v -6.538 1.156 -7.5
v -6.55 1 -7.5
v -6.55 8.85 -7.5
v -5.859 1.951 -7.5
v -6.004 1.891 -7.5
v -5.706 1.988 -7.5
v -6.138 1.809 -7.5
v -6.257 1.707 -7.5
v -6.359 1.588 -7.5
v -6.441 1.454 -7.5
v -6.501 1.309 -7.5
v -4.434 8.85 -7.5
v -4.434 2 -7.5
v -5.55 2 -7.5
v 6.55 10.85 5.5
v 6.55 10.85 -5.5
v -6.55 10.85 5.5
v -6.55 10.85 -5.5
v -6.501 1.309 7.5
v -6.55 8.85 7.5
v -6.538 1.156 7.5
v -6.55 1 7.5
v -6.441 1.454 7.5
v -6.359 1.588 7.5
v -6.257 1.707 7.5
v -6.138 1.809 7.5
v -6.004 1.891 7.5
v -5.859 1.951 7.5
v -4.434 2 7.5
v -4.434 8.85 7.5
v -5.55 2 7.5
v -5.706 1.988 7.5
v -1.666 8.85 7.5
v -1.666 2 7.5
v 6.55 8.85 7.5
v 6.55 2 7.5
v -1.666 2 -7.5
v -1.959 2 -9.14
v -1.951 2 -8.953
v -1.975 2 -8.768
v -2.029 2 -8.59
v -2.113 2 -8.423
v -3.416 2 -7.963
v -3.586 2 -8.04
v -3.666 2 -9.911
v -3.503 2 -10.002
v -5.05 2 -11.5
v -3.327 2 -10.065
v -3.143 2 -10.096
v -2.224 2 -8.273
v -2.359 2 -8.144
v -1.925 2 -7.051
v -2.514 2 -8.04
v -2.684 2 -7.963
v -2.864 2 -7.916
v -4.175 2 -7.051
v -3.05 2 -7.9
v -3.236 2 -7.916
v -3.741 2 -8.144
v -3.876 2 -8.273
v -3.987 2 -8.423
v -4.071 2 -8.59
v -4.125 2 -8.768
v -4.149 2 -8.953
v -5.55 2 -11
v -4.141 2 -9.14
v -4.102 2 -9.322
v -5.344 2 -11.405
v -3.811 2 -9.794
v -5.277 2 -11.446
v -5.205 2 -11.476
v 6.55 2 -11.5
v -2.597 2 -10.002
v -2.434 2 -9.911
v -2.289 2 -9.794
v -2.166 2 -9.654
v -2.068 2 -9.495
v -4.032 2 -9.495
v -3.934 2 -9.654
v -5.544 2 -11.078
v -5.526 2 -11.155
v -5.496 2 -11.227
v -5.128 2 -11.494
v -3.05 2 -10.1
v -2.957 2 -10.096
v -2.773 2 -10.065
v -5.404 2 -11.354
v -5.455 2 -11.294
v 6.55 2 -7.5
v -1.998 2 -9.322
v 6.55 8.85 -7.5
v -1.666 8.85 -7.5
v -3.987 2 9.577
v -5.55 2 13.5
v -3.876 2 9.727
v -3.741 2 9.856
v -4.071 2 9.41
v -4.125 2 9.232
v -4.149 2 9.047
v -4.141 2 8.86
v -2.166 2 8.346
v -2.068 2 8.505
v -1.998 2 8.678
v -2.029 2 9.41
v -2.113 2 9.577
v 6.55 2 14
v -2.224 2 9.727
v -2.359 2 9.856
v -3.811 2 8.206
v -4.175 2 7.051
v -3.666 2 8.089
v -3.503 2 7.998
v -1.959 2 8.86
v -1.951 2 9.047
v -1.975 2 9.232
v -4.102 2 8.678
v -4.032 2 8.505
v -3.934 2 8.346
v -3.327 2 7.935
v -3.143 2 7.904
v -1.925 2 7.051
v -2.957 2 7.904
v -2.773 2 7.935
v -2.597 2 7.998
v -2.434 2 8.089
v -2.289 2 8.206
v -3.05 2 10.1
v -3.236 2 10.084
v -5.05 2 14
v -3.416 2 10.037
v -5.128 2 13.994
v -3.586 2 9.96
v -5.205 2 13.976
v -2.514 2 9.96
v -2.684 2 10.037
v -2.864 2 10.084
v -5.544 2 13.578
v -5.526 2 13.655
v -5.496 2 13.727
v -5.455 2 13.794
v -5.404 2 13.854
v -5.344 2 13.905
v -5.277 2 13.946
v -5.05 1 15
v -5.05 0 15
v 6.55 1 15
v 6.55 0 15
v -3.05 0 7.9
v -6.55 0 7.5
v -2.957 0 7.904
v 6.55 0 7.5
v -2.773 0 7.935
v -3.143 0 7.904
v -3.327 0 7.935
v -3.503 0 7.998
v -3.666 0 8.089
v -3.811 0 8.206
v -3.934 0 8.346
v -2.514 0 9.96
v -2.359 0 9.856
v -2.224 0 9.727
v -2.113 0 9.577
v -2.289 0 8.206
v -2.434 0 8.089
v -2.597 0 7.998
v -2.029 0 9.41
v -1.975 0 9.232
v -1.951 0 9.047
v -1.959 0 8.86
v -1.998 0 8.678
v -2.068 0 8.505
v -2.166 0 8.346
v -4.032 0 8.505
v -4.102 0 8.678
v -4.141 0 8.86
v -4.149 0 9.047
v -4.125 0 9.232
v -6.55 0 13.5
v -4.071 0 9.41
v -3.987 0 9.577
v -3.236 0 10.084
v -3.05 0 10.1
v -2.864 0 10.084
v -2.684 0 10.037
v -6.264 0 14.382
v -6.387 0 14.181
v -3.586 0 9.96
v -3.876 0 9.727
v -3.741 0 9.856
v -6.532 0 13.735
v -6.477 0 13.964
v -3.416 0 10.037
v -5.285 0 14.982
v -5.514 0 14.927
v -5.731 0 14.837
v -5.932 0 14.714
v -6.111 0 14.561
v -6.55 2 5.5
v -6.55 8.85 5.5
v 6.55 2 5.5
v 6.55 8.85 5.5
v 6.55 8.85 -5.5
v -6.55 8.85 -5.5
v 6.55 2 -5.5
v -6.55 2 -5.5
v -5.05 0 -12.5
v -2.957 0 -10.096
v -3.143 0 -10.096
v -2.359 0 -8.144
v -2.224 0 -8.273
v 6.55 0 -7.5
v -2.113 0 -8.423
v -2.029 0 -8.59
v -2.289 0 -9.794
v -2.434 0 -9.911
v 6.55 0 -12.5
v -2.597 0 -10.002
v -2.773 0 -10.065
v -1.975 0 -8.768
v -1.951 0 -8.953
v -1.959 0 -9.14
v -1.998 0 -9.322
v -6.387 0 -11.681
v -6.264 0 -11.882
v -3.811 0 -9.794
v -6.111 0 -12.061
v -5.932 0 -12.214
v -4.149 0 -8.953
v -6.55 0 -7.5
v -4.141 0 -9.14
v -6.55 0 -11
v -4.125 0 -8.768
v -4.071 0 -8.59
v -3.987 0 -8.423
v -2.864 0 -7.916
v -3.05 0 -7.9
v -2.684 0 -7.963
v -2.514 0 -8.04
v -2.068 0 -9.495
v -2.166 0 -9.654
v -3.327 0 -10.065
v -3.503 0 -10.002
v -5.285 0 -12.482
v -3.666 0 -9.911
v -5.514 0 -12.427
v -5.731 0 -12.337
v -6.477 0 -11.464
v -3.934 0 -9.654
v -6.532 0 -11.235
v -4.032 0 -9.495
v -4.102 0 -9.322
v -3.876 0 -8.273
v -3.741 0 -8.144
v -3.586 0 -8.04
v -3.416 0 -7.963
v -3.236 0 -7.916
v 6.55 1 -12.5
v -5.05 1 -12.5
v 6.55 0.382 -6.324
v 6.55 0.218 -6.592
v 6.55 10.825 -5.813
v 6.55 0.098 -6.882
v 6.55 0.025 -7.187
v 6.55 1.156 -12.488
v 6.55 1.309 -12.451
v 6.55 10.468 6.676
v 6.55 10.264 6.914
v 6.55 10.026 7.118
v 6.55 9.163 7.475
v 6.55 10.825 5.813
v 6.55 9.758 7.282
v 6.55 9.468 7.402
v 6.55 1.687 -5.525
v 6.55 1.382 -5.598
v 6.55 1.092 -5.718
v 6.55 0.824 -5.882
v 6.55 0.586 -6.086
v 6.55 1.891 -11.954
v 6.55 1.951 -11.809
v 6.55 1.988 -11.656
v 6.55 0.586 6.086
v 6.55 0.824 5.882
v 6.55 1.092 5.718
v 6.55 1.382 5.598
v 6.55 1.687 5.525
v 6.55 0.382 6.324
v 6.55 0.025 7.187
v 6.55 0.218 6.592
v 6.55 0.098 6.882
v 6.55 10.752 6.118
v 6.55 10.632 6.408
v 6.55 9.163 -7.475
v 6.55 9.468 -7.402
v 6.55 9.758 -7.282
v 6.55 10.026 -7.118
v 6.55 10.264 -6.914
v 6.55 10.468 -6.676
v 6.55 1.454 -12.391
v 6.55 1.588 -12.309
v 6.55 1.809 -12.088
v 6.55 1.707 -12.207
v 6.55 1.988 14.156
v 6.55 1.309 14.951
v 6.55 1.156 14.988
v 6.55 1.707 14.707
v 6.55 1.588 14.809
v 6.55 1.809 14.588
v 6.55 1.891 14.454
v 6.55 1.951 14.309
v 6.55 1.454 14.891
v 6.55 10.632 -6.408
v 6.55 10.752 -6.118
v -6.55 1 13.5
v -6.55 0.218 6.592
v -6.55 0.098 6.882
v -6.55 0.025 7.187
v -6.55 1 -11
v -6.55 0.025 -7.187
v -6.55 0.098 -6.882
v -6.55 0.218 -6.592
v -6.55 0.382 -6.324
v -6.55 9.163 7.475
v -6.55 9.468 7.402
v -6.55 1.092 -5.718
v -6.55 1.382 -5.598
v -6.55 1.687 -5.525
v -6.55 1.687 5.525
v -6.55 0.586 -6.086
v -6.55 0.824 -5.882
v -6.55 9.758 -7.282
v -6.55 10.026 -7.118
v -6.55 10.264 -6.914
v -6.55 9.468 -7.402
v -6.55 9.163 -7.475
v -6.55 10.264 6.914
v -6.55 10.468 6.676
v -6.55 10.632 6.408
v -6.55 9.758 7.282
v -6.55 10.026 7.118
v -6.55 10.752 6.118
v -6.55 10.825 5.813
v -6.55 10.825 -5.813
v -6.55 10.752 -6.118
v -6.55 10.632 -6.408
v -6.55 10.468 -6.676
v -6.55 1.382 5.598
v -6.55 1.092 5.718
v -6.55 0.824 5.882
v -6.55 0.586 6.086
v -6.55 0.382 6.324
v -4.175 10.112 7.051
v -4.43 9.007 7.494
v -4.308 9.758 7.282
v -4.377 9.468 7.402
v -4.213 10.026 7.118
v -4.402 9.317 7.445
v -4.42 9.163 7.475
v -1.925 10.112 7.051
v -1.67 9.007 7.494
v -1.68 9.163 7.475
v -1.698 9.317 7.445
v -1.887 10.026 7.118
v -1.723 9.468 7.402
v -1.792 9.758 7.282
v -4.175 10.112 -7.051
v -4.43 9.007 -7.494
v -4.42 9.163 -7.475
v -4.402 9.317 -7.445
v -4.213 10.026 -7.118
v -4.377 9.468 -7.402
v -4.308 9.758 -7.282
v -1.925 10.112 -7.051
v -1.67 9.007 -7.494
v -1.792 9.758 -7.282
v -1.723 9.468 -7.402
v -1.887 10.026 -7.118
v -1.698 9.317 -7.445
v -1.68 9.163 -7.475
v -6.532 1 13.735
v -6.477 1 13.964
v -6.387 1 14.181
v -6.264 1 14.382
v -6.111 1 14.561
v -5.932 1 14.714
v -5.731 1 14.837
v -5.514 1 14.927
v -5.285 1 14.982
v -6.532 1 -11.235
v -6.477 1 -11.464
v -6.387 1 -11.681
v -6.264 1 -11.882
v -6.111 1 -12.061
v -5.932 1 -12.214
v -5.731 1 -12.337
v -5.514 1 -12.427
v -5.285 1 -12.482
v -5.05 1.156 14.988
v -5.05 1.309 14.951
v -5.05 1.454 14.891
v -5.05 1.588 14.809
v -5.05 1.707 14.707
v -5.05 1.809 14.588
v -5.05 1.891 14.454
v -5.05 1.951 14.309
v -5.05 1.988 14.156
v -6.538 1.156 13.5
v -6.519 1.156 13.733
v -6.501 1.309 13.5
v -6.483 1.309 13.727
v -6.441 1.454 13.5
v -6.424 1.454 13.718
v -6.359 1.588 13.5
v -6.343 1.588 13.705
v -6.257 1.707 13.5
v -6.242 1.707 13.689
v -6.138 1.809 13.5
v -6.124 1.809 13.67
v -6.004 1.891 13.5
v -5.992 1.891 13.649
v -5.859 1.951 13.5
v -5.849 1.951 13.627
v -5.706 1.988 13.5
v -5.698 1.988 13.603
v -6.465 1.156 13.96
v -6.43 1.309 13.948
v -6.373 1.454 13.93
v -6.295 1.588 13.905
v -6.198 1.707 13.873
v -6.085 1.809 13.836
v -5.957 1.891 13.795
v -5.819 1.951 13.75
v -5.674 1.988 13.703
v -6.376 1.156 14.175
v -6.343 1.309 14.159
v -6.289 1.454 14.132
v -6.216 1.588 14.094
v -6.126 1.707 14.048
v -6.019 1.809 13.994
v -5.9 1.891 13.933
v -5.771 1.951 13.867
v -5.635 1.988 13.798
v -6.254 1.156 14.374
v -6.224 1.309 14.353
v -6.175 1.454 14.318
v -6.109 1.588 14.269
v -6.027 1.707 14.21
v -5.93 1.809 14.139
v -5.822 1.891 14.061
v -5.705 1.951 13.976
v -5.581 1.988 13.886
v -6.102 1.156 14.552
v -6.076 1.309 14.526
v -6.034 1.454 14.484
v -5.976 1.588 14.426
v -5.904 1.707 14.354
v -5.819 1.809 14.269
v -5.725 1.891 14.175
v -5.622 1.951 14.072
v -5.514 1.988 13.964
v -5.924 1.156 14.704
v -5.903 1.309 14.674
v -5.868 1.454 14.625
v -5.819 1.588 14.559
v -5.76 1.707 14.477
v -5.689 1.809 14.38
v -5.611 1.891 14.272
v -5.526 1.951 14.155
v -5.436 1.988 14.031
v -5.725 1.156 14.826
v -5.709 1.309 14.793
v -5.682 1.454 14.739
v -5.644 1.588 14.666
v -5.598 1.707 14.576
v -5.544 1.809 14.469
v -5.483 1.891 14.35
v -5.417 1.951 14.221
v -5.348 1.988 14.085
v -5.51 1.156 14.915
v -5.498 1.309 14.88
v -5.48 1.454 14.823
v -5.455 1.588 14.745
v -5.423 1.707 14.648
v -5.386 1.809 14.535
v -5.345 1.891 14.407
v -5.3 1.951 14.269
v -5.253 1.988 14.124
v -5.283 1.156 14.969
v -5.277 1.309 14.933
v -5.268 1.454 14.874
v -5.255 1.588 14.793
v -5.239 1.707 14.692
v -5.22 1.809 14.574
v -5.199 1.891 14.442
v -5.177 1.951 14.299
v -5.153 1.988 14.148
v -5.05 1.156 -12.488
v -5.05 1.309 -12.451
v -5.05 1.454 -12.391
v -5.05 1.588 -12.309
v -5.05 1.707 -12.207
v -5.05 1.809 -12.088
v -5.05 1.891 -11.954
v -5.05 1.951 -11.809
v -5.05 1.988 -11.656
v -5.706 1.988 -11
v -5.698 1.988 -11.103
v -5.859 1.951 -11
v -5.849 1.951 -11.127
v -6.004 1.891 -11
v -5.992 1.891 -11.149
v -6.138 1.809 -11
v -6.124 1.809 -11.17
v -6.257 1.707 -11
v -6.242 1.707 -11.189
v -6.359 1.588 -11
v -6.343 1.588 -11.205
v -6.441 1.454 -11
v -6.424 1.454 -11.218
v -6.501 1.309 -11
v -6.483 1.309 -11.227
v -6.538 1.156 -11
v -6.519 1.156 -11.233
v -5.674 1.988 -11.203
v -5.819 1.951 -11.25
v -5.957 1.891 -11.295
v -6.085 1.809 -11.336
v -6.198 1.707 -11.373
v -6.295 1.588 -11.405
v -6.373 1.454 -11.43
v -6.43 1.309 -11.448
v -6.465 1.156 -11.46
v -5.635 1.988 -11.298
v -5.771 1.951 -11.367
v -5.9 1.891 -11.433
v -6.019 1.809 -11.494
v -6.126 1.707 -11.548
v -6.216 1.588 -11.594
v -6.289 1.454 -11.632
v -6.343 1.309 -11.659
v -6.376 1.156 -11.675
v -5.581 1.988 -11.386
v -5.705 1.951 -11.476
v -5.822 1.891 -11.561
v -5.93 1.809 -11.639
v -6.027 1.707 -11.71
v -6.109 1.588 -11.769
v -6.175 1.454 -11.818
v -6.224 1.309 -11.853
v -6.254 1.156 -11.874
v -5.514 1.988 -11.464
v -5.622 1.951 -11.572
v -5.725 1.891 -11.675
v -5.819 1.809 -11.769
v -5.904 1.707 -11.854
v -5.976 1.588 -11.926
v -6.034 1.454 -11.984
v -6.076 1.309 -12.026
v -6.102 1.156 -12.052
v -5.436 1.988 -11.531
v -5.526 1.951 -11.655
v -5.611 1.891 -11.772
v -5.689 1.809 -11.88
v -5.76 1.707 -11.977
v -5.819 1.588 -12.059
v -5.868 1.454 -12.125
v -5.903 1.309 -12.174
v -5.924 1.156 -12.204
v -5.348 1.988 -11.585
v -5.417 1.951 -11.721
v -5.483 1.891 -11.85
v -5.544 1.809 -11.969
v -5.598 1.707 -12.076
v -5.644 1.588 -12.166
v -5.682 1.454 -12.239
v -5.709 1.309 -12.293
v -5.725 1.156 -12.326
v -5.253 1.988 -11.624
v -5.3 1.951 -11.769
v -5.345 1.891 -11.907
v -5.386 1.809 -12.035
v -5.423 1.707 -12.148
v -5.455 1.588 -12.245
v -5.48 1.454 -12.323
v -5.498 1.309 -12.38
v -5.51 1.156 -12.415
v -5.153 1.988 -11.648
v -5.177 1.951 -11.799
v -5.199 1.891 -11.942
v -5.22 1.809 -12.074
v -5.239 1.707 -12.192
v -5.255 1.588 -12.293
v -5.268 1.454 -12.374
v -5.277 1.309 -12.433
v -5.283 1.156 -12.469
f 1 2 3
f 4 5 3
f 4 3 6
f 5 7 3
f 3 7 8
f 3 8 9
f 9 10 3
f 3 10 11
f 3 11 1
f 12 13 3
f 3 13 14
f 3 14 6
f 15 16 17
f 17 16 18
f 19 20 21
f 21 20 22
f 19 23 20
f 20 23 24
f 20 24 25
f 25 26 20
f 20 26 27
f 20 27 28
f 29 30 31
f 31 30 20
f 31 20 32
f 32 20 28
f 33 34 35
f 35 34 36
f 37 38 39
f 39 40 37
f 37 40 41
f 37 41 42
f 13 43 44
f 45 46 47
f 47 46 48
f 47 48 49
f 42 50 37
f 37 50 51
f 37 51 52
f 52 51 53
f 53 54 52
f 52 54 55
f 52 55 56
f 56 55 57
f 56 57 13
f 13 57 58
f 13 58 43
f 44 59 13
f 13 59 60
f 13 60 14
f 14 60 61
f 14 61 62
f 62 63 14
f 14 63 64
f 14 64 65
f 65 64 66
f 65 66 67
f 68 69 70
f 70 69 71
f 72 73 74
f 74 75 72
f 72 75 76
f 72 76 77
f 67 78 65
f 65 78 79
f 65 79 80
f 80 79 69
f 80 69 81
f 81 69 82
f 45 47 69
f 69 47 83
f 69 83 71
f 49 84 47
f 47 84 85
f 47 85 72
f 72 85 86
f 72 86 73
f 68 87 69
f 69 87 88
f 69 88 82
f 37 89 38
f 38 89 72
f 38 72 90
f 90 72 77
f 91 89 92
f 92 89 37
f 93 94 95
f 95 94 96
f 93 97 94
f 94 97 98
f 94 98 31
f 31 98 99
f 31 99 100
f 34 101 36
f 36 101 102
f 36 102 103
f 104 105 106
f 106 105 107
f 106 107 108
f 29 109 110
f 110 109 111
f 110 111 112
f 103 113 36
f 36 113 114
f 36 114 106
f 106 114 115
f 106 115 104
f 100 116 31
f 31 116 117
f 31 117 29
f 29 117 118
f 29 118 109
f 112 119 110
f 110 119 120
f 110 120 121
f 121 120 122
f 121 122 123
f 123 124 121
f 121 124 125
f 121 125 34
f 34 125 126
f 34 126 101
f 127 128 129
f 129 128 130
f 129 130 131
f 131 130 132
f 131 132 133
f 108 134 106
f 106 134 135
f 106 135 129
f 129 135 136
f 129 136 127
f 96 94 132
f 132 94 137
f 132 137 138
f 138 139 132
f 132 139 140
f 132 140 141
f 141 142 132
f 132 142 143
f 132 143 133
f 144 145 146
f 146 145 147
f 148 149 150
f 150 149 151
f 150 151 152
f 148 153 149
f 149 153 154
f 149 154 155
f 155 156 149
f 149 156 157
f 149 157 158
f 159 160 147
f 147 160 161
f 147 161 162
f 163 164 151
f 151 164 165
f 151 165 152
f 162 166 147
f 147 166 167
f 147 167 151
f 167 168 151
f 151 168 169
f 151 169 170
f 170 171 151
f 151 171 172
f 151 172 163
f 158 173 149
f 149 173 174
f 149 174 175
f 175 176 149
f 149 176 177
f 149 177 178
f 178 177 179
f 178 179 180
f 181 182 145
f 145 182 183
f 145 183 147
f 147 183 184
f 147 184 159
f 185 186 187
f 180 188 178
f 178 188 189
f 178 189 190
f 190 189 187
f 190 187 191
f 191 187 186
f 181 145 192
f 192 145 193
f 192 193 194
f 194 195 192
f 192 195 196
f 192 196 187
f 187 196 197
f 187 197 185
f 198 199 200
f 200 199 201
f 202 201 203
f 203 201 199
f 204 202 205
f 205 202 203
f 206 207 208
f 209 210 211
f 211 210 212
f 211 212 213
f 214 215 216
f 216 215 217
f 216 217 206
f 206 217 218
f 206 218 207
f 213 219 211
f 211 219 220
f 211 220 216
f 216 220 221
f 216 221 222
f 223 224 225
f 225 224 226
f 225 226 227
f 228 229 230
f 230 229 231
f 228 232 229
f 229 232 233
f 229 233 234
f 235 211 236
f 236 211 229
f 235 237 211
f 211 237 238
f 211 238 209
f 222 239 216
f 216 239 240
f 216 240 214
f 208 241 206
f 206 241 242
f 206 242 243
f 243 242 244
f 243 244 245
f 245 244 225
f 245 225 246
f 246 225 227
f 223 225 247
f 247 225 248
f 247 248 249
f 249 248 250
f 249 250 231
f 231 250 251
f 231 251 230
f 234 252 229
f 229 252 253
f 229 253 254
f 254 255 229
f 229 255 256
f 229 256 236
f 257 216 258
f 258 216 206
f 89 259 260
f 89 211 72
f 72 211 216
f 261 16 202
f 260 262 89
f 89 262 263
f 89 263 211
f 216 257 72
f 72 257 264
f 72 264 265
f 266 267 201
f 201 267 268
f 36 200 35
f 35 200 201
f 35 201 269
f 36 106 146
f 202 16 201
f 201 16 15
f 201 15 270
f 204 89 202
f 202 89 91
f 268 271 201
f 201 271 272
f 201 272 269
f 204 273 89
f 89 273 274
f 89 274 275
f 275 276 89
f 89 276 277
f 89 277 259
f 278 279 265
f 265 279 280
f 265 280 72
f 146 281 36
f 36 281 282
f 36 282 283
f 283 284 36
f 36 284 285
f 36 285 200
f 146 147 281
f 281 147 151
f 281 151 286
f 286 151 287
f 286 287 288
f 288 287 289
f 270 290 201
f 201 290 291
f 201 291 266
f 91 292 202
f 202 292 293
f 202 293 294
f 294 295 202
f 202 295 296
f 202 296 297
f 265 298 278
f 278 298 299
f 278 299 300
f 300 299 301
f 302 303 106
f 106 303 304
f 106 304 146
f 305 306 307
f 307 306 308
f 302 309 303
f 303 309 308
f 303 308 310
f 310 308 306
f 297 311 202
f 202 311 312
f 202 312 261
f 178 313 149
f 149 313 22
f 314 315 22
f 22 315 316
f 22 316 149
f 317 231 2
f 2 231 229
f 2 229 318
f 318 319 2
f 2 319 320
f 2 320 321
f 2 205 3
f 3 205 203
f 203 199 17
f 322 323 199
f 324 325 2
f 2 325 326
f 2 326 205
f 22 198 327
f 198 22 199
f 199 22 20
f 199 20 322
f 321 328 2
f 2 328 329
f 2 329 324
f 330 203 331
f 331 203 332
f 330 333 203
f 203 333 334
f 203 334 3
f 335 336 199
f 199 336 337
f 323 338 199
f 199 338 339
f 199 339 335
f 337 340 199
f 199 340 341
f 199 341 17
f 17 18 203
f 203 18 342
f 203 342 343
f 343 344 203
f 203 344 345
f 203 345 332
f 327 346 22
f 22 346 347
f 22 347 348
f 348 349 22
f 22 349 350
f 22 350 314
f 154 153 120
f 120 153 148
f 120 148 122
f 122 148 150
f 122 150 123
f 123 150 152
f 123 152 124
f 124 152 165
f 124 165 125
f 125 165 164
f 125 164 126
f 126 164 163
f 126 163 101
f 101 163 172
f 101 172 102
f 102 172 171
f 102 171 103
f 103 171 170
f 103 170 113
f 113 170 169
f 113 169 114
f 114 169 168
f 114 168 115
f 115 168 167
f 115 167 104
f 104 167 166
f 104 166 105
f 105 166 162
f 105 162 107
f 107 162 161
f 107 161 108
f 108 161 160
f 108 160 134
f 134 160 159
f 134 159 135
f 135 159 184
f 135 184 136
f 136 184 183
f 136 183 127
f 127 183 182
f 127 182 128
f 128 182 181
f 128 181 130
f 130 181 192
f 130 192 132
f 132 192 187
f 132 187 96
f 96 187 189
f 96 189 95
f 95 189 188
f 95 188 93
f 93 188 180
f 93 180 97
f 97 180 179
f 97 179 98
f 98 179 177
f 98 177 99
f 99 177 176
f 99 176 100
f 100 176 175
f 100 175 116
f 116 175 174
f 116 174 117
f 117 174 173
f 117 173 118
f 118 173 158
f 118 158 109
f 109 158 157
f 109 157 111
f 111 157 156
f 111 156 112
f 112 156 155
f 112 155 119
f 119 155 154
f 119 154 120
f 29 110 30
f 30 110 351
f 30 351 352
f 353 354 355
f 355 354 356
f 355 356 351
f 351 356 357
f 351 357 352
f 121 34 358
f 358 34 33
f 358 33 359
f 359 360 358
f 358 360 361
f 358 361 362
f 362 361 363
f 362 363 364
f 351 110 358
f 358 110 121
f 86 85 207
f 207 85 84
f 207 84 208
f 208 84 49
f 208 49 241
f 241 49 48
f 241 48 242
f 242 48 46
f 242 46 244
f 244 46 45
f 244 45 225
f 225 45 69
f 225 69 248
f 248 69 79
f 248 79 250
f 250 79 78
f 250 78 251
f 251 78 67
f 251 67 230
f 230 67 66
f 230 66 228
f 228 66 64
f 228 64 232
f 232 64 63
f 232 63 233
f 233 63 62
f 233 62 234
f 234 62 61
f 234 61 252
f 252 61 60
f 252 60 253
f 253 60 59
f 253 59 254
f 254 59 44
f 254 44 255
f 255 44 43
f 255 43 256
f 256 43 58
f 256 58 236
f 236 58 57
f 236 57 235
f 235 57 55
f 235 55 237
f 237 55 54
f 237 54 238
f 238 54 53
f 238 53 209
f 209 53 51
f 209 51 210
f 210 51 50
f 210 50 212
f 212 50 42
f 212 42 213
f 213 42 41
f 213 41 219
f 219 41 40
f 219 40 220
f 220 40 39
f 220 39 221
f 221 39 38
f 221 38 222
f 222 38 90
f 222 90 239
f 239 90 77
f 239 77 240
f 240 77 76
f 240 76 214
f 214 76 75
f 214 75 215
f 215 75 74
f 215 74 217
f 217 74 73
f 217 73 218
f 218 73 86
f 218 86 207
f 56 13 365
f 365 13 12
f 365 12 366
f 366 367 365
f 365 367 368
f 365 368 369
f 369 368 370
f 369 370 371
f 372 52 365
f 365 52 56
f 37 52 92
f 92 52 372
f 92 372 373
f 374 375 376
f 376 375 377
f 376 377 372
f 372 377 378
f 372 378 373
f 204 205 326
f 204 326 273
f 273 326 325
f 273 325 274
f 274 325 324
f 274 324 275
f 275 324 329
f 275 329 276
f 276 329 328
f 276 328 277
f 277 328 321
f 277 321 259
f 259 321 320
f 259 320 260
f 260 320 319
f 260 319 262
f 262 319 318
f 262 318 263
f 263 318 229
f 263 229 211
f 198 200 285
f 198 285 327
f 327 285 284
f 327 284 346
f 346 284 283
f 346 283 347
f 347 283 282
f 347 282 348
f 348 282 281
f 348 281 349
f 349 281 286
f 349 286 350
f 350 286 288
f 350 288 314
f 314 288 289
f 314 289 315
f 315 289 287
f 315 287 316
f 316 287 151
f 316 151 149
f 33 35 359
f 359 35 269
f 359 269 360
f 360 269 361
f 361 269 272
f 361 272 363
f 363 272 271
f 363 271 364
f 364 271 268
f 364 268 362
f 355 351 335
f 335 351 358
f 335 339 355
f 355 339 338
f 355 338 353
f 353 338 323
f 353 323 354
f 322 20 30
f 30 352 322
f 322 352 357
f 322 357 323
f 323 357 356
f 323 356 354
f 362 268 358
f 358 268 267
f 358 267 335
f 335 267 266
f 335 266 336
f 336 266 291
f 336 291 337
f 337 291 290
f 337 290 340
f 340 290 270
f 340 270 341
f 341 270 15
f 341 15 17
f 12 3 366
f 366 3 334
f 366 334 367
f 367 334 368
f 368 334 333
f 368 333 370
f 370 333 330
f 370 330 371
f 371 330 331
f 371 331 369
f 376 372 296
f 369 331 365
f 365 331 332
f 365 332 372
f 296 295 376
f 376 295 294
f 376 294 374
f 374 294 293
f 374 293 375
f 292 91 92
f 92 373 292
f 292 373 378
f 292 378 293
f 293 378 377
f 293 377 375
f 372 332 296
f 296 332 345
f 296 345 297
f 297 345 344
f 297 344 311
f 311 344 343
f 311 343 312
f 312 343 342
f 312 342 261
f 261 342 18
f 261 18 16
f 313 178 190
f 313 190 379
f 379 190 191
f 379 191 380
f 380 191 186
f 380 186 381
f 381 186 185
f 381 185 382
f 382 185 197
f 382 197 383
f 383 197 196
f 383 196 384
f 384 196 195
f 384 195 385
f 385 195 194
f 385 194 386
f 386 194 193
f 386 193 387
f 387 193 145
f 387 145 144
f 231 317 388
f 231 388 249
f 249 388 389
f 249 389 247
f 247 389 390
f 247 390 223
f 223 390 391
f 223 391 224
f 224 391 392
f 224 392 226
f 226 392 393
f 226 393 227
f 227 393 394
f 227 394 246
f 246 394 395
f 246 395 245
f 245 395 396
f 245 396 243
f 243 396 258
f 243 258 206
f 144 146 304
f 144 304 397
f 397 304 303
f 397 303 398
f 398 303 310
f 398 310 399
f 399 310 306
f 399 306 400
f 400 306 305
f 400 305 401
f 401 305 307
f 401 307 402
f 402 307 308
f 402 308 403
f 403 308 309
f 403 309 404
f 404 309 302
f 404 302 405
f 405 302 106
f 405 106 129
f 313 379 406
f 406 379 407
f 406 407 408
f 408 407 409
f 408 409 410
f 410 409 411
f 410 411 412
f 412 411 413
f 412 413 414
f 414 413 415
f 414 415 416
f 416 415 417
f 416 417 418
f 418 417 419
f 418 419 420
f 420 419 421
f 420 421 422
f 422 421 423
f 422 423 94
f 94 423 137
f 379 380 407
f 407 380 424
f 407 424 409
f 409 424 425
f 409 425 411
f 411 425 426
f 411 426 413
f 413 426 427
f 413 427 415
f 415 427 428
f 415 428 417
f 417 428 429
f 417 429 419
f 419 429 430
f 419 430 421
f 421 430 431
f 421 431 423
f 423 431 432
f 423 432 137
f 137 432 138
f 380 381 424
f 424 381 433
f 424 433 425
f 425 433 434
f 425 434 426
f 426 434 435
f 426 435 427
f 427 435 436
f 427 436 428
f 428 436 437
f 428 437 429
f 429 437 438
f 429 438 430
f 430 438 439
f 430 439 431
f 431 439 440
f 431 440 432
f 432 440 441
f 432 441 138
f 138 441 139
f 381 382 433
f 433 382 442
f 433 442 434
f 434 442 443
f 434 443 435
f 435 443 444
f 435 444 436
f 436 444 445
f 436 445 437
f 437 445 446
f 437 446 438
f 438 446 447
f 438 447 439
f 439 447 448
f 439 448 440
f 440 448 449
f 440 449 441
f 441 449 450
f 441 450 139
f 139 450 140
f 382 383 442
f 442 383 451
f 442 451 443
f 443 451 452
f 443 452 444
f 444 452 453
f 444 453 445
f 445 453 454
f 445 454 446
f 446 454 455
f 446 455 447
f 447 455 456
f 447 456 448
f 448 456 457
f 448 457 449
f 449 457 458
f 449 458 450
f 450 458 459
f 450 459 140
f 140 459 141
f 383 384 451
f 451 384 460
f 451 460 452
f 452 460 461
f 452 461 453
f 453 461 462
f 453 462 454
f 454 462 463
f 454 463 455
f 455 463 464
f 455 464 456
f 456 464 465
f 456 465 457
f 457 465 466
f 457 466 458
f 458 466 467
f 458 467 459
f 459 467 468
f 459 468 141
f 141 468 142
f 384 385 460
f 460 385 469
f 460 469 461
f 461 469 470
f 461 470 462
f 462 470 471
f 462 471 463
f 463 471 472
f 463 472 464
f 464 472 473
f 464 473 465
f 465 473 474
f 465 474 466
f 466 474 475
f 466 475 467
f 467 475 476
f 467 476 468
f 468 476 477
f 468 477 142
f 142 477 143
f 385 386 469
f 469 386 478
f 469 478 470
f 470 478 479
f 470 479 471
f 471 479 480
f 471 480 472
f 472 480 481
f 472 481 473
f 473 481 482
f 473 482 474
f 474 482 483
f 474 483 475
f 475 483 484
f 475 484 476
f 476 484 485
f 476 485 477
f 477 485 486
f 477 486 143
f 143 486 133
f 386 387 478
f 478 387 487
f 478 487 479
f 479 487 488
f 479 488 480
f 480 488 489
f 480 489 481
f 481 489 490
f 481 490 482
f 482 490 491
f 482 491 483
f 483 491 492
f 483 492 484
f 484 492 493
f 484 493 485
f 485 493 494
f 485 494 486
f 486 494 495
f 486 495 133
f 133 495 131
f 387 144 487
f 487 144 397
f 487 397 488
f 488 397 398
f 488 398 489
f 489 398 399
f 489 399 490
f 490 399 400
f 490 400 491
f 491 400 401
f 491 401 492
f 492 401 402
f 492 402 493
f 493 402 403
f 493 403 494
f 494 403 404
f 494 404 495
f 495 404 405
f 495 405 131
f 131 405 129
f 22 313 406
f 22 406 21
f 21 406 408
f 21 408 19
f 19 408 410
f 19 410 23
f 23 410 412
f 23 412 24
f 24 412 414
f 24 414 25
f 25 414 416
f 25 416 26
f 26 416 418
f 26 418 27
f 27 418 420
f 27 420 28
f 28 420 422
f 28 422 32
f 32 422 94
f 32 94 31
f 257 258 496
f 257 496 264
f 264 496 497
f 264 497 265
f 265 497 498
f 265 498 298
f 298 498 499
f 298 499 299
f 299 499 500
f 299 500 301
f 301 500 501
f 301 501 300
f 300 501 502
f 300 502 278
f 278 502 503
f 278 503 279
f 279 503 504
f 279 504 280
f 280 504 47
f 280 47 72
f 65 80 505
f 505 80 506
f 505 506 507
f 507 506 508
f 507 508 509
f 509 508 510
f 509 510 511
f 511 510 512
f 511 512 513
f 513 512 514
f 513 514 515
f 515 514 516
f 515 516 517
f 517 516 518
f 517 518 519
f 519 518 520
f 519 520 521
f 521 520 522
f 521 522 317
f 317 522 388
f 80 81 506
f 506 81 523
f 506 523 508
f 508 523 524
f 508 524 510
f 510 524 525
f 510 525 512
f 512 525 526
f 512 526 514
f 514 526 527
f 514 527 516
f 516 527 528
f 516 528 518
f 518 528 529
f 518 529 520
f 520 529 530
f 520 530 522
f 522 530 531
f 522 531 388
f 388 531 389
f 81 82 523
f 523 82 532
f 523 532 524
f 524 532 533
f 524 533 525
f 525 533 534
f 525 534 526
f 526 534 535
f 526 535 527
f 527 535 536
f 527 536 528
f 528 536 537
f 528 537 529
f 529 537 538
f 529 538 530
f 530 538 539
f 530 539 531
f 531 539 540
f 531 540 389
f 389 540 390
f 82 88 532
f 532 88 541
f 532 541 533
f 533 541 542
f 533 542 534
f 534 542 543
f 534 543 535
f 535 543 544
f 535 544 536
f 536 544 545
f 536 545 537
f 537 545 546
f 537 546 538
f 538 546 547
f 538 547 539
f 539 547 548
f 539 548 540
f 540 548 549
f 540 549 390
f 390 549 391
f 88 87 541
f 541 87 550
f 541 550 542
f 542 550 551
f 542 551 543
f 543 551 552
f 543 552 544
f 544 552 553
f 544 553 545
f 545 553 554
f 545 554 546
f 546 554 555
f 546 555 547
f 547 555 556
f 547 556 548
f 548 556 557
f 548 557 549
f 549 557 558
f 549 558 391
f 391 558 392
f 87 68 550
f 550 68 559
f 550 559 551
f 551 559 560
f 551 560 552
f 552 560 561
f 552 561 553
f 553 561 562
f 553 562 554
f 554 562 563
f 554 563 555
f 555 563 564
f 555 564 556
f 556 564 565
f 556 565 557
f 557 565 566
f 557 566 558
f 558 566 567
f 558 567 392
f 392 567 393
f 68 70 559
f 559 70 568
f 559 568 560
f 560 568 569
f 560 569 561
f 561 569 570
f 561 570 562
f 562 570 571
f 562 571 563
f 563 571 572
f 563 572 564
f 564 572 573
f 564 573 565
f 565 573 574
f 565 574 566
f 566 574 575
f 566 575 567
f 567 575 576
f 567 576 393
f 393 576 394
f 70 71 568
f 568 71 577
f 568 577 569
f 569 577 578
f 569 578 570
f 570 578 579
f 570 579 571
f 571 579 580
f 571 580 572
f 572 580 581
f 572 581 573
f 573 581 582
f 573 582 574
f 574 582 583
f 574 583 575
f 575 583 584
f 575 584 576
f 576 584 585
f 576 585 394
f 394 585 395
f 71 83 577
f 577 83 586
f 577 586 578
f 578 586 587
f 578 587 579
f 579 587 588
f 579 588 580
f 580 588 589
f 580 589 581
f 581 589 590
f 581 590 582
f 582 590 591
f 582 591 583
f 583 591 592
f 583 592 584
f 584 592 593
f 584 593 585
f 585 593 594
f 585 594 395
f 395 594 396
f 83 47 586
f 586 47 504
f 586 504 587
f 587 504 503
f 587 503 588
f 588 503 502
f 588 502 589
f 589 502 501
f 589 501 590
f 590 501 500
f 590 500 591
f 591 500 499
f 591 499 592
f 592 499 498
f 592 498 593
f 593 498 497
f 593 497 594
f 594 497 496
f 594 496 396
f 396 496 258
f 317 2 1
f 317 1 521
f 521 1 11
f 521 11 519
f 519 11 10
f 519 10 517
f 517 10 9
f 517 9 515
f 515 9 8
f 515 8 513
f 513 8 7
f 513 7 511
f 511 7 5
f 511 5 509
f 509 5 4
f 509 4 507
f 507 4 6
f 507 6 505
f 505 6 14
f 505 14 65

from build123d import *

# Parameters (mm, degrees)
BOSS_EXTRUDE1_DEPTH = 6.55
CUT_EXTRUDE1_REACH  = 20.607
SKETCH2_R           = 1.1
CUT_EXTRUDE2_REACH  = 20.607
FILLET1_R           = 2
FILLET3_R           = 1.5
FILLET4_R           = 1


with BuildPart() as part:
    # Sketch1 → Boss-Extrude1 (new, symmetric)
    with BuildSketch(Plane(origin=(0, 0, 0), x_dir=(0, 0, -1), z_dir=(1, 0, 0))):
        Polygon((-5.5, 8.85), (5.5, 8.85), (5.5, 0), (12.5, 0), (12.5, 2), (7.5, 2), (7.5, 10.85), (-7.5, 10.85), (-7.5, 2), (-15, 2), (-15, 0), (-5.5, 0), align=None)
    extrude(amount=BOSS_EXTRUDE1_DEPTH, both=True)

    # Sketch2 → Cut-Extrude1 (cut, up to next)
    with BuildSketch(Plane(origin=(0, 2, 0), x_dir=(1, 0, 0), z_dir=(0, 1, 0)), mode=Mode.PRIVATE) as cut_extrude1_sk1:
        with Locations(Location((-3.05, -9, 0), (0, 0, 270))):
            Circle(SKETCH2_R)
    cut_extrude1_tool1 = extrude(cut_extrude1_sk1.sketch, amount=-CUT_EXTRUDE1_REACH, mode=Mode.PRIVATE) & part.part
    cut_extrude1 = cut_extrude1_tool1.solids().sort_by_distance((-3.05, 2, 9))[0]
    add(cut_extrude1, mode=Mode.SUBTRACT)

    # Sketch3 → Cut-Extrude2 (cut, up to next)
    with BuildSketch(Plane(origin=(0, 2, 0), x_dir=(1, 0, 0), z_dir=(0, 1, 0)), mode=Mode.PRIVATE) as cut_extrude2_sk1:
        Polygon((-5.3, -9), (-4.175, -10.948557159), (-1.925, -10.948557159), (-0.8, -9), (-1.925, -7.051442841), (-4.175, -7.051442841), align=None)
    cut_extrude2_tool1 = extrude(cut_extrude2_sk1.sketch, amount=CUT_EXTRUDE2_REACH, mode=Mode.PRIVATE) & part.part
    cut_extrude2 = cut_extrude2_tool1.solids().sort_by_distance((-3.05, 2, 9))[0]
    add(cut_extrude2, mode=Mode.SUBTRACT)

    # Mirror1: Cut-Extrude1, Cut-Extrude2 across plane
    add(cut_extrude1.mirror(Plane.XY), mode=Mode.SUBTRACT)
    add(cut_extrude2.mirror(Plane.XY), mode=Mode.SUBTRACT)

    # Fillet1
    # the kernel refuses this fillet: 2 mm, written as the material it takes off along each edge
    with BuildSketch(Plane(origin=(-11.55, 0, -5.5), x_dir=(0, 1, 0), z_dir=(1, 0, 0)), Plane(origin=(11.55, 0, 5.5), x_dir=(0, 1, 0), z_dir=(-1, 0, 0))) as fillet1_piece_1:
        with BuildLine():
            CenterArc((FILLET1_R, -FILLET1_R), FILLET1_R, 90, 90)
            Line((0, -FILLET1_R), (0, 0))
            Line((0, 0), (FILLET1_R, 0))
        make_face()
    extrude(amount=23.1, mode=Mode.SUBTRACT)
    with BuildSketch(Plane(origin=(-6.666025404, 10.85, 7.5), x_dir=(0, 0, -1), z_dir=(1, 0, 0))) as fillet1_piece_2:
        with BuildLine():
            CenterArc((FILLET1_R, -FILLET1_R), FILLET1_R, 90, 90)
            Line((0, -FILLET1_R), (0, 0))
            Line((0, 0), (FILLET1_R, 0))
        make_face()
    extrude(amount=18.216025404, mode=Mode.SUBTRACT)
    with BuildSketch(Plane(origin=(-6.666025404, 10.85, -7.5), x_dir=(0, 0, 1), z_dir=(1, 0, 0))) as fillet1_piece_3:
        with BuildLine():
            CenterArc((FILLET1_R, FILLET1_R), FILLET1_R, 180, 90)
            Line((0, FILLET1_R), (0, 0))
            Line((0, 0), (FILLET1_R, 0))
        make_face()
    extrude(amount=18.216025404, mode=Mode.SUBTRACT)

    # Fillet3
    fillet3_edges = [part.edges().sort_by_distance(p)[0] for p in [
        (-6.55, 1, -12.5),
        (-6.55, 1, 15),
    ]]
    fillet(fillet3_edges, radius=FILLET3_R)

    # Fillet4
    fillet4_edges = [part.edges().sort_by_distance(p)[0] for p in [
        (-6.110660172, 2, 14.560660172),
        (-6.110660172, 2, -12.060660172),
        (-6.55, 2, 10.5),
        (-6.55, 2, -9.25),
        (0.75, 2, -12.5),
        (0.75, 2, 15),
    ]]
    fillet(fillet4_edges, radius=FILLET4_R)


solid = part.part
